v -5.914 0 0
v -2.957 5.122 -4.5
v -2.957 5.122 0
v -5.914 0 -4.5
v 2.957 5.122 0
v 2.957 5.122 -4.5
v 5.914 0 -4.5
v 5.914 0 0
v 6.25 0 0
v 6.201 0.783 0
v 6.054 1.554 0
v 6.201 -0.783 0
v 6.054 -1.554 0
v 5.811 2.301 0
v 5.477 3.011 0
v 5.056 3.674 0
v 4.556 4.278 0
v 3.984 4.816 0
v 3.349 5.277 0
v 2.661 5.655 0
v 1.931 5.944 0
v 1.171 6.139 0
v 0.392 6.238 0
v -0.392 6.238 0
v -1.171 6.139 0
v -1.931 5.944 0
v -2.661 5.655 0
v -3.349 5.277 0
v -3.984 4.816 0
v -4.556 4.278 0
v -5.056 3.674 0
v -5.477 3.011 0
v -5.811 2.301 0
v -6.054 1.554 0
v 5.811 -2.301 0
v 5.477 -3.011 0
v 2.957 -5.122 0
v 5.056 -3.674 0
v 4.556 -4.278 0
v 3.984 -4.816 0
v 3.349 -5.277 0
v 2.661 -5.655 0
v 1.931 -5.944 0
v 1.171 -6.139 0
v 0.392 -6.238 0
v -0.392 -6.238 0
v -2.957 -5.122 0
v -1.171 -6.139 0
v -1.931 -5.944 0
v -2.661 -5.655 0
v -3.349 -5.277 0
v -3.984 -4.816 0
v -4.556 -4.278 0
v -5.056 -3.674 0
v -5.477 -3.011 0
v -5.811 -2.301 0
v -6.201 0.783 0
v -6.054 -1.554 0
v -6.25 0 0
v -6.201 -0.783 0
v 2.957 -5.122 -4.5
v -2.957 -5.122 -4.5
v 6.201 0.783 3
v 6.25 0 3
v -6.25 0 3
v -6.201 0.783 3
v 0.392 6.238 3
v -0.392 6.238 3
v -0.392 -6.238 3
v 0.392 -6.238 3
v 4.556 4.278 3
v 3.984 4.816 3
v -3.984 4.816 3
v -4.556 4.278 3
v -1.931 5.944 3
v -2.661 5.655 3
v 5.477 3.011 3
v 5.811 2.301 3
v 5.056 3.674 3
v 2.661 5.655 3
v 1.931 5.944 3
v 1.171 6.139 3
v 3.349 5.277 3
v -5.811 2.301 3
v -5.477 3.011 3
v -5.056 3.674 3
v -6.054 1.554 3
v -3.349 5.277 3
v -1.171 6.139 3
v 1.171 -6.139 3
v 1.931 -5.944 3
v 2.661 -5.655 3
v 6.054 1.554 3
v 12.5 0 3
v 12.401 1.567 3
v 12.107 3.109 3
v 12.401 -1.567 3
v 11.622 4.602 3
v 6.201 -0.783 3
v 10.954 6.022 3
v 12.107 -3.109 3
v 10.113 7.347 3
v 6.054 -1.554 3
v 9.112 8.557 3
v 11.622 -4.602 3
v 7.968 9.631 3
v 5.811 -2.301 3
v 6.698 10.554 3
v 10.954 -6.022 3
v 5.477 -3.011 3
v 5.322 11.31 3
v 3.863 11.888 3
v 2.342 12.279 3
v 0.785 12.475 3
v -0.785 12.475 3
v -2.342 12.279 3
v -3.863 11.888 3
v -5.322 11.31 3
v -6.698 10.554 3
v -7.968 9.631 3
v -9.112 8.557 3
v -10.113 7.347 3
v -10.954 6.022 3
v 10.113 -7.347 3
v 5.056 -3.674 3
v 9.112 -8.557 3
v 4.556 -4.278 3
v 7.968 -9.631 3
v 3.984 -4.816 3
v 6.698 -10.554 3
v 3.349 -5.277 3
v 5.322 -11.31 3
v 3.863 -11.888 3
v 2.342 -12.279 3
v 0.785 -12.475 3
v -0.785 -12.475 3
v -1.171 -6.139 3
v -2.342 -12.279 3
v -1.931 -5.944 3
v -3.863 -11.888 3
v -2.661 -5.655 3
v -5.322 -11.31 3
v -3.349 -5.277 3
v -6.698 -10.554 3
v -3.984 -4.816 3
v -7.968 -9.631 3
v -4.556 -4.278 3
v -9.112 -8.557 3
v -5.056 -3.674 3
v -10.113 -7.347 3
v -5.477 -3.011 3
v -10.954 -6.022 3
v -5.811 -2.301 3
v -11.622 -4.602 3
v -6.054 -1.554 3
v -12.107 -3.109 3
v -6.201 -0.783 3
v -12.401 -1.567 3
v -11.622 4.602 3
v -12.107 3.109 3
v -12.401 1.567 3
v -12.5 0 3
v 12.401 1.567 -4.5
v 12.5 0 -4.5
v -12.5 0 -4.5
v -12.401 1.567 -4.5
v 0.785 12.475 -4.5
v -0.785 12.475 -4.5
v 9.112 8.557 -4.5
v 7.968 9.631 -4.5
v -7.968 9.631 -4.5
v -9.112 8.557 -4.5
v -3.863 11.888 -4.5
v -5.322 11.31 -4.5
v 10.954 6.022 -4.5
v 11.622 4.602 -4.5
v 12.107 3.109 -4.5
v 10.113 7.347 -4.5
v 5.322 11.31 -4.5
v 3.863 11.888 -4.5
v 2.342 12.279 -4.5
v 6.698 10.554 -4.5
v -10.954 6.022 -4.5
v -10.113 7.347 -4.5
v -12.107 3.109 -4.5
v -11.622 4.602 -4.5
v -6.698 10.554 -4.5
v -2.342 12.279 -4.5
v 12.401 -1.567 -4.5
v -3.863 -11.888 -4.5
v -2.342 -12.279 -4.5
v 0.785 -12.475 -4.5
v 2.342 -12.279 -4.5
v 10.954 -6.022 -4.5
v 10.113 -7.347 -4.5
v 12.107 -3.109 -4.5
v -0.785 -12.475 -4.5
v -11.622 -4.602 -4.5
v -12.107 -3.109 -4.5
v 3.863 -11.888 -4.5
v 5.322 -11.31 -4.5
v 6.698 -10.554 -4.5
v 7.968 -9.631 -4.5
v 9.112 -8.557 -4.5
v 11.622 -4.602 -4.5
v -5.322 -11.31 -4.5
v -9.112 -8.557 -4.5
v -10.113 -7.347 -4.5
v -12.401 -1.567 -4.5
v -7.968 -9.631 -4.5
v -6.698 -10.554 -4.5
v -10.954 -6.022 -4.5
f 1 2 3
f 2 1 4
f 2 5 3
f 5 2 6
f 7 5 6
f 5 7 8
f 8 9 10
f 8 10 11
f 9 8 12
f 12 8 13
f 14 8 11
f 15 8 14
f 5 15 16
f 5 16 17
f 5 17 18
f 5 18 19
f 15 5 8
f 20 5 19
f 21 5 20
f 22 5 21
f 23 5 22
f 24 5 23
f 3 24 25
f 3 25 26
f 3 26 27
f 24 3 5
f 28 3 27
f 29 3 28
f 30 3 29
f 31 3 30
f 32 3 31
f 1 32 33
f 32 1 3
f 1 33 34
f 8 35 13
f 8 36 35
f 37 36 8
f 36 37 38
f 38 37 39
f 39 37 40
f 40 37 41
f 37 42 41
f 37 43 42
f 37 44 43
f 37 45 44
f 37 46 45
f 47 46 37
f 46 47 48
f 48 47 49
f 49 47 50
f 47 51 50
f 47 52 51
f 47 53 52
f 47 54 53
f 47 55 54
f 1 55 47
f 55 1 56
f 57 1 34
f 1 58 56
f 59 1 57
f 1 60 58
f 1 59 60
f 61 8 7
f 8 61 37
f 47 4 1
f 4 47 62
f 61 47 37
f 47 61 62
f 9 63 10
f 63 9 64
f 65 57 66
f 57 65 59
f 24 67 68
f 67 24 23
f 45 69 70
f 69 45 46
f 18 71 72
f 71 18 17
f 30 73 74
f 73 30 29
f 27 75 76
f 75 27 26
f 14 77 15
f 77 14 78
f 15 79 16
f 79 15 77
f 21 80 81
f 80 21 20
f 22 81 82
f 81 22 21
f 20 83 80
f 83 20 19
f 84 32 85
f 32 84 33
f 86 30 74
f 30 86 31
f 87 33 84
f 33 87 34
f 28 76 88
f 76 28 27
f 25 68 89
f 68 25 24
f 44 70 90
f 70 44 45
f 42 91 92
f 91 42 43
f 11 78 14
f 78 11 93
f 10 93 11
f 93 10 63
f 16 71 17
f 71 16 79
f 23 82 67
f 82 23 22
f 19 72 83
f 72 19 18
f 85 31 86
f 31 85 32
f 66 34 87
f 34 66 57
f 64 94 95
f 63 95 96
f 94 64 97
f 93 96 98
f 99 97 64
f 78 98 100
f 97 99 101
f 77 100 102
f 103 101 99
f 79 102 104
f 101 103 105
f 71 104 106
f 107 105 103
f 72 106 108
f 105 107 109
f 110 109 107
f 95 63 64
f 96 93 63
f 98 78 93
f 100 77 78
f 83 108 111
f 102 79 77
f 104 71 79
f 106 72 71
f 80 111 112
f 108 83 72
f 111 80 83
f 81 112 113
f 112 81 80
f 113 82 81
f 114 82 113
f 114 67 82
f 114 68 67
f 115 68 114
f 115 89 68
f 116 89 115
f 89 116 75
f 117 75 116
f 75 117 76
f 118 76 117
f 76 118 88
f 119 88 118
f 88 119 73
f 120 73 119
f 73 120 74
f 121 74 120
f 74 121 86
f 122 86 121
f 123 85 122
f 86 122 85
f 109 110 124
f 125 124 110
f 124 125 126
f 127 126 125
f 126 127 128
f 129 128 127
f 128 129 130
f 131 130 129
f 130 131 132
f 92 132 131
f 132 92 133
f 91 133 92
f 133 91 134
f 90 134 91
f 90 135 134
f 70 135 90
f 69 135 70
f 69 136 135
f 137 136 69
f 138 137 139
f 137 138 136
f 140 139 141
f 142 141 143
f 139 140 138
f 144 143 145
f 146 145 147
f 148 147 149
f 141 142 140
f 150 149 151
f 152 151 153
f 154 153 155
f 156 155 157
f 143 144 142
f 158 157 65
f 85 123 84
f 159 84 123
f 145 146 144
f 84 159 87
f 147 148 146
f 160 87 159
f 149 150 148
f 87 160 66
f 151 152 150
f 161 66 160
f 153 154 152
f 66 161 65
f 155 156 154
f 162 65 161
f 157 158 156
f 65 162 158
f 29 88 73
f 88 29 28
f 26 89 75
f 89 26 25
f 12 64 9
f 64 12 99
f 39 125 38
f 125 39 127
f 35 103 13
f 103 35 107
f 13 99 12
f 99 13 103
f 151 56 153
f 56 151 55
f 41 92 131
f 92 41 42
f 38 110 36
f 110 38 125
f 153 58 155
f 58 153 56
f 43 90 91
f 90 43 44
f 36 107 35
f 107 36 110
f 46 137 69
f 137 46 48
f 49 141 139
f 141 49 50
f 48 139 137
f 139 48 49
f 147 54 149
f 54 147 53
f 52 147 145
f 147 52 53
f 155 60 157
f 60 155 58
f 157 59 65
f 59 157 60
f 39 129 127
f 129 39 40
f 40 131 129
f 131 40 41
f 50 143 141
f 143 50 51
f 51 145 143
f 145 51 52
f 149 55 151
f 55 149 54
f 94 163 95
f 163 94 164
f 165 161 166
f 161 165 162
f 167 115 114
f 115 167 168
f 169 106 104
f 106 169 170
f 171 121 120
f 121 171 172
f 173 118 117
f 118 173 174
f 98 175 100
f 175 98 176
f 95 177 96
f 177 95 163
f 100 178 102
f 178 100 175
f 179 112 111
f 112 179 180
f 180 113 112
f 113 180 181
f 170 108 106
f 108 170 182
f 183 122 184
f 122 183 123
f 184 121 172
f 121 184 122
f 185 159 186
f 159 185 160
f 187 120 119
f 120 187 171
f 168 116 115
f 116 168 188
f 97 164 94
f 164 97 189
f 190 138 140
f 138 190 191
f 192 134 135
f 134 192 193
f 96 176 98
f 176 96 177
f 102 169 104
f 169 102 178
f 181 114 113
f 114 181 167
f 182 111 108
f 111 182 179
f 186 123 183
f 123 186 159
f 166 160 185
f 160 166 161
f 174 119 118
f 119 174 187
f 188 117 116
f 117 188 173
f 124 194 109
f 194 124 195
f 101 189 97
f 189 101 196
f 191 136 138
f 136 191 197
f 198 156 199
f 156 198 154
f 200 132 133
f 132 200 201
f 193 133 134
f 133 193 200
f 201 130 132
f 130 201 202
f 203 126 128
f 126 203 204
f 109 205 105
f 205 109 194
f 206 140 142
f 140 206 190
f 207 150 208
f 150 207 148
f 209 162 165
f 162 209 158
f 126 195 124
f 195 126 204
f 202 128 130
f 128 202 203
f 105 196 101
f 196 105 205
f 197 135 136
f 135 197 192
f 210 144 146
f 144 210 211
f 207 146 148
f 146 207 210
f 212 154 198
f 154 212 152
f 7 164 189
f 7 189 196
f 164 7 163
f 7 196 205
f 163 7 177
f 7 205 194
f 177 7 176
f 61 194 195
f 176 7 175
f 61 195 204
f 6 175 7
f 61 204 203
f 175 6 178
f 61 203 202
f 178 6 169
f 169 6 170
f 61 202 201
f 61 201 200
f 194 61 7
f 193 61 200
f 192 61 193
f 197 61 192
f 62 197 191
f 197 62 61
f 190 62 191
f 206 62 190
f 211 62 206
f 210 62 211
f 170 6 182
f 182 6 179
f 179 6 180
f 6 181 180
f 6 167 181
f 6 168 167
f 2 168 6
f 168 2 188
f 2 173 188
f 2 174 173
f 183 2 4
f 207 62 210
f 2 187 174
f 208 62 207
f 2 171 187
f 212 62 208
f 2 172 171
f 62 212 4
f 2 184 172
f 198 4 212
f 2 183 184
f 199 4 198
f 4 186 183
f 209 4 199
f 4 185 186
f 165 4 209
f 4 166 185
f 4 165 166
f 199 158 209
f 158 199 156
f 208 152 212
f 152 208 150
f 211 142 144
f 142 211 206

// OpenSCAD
$fn = 50;

difference() {
	union() {
		translate(v = [0, 0, -4.5]) {
			cylinder(h = 7.5, r = 12.5);
		}
	}
	union() {
		translate(v = [0, 0, 0]) {
			rotate(a = [0, 0, 0]) {
				difference() {
					union() {
						translate(v = [0, 0, -5]) {
							linear_extrude(height = 5) {
								polygon(points = [[5.914249999999999, 0.0], [2.957125, 5.1218907443321156], [-2.9571249999999982, 5.1218907443321156], [-5.914249999999999, 7.242867331857232e-16], [-2.9571250000000022, -5.121890744332115], [2.9571249999999956, -5.121890744332118]]);
							}
						}
					}
					union();
				}
			}
		}
		#cylinder(h = 3, r = 6.25);
		#translate(v = [0, 0, -100.0]) {
			cylinder(h = 200, r = 3.25);
		}
	}
}
